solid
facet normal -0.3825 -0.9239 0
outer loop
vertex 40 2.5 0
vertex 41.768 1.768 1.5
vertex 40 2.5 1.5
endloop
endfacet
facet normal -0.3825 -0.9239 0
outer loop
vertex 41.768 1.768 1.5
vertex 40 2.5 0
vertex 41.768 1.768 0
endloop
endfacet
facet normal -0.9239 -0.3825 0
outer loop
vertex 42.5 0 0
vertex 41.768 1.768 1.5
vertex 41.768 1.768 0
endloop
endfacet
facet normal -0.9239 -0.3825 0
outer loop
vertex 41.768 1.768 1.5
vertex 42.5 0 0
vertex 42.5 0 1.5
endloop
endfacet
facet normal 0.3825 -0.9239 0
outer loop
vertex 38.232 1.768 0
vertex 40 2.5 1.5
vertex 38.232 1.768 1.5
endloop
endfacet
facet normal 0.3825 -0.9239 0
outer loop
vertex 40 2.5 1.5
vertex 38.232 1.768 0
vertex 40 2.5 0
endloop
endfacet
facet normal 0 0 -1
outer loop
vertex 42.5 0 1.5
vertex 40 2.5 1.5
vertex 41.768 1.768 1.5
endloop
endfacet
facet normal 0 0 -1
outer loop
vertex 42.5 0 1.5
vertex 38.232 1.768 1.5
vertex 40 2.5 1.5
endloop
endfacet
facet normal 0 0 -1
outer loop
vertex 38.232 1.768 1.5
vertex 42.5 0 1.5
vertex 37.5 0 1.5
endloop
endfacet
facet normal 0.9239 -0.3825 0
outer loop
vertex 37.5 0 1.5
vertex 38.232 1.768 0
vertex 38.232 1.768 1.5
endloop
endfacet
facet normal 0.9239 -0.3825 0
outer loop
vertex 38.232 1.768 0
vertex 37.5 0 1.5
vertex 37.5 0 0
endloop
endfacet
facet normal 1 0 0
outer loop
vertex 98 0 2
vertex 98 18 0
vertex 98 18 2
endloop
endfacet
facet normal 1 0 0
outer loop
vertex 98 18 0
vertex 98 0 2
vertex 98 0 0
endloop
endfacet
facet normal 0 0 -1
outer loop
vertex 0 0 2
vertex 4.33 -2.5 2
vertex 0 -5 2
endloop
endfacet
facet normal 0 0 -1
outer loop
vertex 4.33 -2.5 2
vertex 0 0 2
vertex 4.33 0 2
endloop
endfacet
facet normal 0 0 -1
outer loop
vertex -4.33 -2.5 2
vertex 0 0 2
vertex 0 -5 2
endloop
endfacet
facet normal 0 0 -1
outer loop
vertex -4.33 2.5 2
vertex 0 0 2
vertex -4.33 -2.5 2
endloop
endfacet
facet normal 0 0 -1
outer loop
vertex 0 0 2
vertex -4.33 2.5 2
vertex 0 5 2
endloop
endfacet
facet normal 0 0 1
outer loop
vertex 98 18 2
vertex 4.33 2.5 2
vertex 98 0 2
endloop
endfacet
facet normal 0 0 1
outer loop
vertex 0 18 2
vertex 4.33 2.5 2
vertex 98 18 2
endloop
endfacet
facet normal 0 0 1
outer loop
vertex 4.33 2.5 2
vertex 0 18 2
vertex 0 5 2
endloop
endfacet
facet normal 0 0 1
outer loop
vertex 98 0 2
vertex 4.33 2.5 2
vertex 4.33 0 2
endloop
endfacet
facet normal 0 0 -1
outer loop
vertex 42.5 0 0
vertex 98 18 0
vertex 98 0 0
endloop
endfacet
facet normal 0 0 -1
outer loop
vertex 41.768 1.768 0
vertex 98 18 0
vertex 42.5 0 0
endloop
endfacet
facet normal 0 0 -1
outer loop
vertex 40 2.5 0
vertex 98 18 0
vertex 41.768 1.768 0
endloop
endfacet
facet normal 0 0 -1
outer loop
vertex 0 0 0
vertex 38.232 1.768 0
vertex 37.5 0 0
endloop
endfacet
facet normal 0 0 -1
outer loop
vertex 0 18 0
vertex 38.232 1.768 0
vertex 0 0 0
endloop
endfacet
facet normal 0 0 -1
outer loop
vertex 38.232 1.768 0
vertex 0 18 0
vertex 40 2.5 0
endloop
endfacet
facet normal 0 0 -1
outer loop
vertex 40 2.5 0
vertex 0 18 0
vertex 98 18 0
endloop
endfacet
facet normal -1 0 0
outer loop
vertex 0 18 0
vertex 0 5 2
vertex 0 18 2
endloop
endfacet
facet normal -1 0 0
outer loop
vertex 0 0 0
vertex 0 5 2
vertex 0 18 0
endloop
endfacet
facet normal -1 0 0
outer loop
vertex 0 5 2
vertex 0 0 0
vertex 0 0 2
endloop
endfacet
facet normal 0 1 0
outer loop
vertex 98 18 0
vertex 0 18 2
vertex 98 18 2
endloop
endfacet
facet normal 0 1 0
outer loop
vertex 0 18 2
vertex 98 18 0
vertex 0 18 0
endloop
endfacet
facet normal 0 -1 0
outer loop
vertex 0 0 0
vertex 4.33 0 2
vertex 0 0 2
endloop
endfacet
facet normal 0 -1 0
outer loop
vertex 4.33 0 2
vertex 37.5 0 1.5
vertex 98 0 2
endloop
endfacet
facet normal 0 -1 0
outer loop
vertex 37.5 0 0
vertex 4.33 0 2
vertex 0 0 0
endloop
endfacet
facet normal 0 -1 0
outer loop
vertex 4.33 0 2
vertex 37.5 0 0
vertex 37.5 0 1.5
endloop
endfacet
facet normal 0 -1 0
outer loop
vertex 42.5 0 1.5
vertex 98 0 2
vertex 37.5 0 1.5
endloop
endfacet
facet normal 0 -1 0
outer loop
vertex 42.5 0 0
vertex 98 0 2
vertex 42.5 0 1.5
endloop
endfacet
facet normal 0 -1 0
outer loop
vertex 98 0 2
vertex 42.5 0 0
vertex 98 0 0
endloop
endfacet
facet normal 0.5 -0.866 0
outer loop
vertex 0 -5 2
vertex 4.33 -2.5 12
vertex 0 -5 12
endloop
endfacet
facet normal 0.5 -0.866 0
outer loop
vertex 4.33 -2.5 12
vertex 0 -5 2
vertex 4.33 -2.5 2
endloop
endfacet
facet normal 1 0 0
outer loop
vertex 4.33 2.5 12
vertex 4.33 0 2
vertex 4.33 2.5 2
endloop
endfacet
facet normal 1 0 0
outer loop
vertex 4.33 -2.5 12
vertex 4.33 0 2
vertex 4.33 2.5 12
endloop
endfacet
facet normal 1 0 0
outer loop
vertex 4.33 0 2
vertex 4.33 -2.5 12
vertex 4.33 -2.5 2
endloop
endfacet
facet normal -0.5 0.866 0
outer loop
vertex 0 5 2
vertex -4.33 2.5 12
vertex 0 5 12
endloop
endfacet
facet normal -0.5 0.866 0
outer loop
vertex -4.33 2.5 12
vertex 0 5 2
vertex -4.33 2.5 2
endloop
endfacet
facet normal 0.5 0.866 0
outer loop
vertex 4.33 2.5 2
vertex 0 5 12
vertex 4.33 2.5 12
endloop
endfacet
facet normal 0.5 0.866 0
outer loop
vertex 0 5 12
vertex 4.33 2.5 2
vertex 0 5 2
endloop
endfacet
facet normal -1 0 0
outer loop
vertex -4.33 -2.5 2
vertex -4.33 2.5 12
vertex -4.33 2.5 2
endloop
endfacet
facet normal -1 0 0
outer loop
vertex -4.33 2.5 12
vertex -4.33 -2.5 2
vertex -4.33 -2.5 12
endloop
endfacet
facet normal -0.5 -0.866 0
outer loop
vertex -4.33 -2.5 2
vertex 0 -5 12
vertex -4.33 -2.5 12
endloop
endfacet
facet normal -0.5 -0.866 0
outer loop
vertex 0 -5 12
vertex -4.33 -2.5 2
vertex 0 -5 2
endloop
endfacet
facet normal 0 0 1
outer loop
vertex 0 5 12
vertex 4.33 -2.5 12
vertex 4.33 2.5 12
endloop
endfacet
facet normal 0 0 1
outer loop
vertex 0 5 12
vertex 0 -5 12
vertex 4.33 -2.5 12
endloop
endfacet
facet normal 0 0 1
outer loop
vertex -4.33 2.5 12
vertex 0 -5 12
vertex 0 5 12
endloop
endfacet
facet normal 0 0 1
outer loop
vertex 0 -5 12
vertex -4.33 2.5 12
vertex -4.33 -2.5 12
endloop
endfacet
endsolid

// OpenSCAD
// Parameters
base_length = 100;   // Length of the Rectangular Base Plate
base_width = 20;     // Width of the Rectangular Base Plate
base_thickness = 2;  // Thickness of the Rectangular Base Plate
hole_diameter = 5;   // Diameter of mounting holes on the base
hole_spacing = 80;   // Distance between the centers of the holes
chamfer = 1;         // Chamfer of edges
peg_height = 10;     // Height of the Hexagonal Peg
peg_radius = 5;      // Circumscribed circle radius for the hexagon

// Main function to combine components
module flexible_coupling() {
    base_plate();
    translate([0, 0, base_thickness]) 
        hexagonal_peg();
}

// Rectangular Base Plate
module base_plate() {
    difference() {
        // Base rectangle with chamfered edges
        minkowski() {
            cube([base_length - 2*chamfer, base_width - 2*chamfer, base_thickness]);
            translate([chamfer, chamfer])
                square(chamfer);
        }
        // Holes on the base plate
        for (x = [-hole_spacing/2, hole_spacing/2]) 
            translate([x, 0, 0])
                cylinder(h = base_thickness + 1, d = hole_diameter, center = true);
    }
}

// Hexagonal Peg
module hexagonal_peg() {
    rotate([0,0,30])
        cylinder(h = peg_height, r = peg_radius, $fn = 6);
}

// Generate the flexible coupling
flexible_coupling();
